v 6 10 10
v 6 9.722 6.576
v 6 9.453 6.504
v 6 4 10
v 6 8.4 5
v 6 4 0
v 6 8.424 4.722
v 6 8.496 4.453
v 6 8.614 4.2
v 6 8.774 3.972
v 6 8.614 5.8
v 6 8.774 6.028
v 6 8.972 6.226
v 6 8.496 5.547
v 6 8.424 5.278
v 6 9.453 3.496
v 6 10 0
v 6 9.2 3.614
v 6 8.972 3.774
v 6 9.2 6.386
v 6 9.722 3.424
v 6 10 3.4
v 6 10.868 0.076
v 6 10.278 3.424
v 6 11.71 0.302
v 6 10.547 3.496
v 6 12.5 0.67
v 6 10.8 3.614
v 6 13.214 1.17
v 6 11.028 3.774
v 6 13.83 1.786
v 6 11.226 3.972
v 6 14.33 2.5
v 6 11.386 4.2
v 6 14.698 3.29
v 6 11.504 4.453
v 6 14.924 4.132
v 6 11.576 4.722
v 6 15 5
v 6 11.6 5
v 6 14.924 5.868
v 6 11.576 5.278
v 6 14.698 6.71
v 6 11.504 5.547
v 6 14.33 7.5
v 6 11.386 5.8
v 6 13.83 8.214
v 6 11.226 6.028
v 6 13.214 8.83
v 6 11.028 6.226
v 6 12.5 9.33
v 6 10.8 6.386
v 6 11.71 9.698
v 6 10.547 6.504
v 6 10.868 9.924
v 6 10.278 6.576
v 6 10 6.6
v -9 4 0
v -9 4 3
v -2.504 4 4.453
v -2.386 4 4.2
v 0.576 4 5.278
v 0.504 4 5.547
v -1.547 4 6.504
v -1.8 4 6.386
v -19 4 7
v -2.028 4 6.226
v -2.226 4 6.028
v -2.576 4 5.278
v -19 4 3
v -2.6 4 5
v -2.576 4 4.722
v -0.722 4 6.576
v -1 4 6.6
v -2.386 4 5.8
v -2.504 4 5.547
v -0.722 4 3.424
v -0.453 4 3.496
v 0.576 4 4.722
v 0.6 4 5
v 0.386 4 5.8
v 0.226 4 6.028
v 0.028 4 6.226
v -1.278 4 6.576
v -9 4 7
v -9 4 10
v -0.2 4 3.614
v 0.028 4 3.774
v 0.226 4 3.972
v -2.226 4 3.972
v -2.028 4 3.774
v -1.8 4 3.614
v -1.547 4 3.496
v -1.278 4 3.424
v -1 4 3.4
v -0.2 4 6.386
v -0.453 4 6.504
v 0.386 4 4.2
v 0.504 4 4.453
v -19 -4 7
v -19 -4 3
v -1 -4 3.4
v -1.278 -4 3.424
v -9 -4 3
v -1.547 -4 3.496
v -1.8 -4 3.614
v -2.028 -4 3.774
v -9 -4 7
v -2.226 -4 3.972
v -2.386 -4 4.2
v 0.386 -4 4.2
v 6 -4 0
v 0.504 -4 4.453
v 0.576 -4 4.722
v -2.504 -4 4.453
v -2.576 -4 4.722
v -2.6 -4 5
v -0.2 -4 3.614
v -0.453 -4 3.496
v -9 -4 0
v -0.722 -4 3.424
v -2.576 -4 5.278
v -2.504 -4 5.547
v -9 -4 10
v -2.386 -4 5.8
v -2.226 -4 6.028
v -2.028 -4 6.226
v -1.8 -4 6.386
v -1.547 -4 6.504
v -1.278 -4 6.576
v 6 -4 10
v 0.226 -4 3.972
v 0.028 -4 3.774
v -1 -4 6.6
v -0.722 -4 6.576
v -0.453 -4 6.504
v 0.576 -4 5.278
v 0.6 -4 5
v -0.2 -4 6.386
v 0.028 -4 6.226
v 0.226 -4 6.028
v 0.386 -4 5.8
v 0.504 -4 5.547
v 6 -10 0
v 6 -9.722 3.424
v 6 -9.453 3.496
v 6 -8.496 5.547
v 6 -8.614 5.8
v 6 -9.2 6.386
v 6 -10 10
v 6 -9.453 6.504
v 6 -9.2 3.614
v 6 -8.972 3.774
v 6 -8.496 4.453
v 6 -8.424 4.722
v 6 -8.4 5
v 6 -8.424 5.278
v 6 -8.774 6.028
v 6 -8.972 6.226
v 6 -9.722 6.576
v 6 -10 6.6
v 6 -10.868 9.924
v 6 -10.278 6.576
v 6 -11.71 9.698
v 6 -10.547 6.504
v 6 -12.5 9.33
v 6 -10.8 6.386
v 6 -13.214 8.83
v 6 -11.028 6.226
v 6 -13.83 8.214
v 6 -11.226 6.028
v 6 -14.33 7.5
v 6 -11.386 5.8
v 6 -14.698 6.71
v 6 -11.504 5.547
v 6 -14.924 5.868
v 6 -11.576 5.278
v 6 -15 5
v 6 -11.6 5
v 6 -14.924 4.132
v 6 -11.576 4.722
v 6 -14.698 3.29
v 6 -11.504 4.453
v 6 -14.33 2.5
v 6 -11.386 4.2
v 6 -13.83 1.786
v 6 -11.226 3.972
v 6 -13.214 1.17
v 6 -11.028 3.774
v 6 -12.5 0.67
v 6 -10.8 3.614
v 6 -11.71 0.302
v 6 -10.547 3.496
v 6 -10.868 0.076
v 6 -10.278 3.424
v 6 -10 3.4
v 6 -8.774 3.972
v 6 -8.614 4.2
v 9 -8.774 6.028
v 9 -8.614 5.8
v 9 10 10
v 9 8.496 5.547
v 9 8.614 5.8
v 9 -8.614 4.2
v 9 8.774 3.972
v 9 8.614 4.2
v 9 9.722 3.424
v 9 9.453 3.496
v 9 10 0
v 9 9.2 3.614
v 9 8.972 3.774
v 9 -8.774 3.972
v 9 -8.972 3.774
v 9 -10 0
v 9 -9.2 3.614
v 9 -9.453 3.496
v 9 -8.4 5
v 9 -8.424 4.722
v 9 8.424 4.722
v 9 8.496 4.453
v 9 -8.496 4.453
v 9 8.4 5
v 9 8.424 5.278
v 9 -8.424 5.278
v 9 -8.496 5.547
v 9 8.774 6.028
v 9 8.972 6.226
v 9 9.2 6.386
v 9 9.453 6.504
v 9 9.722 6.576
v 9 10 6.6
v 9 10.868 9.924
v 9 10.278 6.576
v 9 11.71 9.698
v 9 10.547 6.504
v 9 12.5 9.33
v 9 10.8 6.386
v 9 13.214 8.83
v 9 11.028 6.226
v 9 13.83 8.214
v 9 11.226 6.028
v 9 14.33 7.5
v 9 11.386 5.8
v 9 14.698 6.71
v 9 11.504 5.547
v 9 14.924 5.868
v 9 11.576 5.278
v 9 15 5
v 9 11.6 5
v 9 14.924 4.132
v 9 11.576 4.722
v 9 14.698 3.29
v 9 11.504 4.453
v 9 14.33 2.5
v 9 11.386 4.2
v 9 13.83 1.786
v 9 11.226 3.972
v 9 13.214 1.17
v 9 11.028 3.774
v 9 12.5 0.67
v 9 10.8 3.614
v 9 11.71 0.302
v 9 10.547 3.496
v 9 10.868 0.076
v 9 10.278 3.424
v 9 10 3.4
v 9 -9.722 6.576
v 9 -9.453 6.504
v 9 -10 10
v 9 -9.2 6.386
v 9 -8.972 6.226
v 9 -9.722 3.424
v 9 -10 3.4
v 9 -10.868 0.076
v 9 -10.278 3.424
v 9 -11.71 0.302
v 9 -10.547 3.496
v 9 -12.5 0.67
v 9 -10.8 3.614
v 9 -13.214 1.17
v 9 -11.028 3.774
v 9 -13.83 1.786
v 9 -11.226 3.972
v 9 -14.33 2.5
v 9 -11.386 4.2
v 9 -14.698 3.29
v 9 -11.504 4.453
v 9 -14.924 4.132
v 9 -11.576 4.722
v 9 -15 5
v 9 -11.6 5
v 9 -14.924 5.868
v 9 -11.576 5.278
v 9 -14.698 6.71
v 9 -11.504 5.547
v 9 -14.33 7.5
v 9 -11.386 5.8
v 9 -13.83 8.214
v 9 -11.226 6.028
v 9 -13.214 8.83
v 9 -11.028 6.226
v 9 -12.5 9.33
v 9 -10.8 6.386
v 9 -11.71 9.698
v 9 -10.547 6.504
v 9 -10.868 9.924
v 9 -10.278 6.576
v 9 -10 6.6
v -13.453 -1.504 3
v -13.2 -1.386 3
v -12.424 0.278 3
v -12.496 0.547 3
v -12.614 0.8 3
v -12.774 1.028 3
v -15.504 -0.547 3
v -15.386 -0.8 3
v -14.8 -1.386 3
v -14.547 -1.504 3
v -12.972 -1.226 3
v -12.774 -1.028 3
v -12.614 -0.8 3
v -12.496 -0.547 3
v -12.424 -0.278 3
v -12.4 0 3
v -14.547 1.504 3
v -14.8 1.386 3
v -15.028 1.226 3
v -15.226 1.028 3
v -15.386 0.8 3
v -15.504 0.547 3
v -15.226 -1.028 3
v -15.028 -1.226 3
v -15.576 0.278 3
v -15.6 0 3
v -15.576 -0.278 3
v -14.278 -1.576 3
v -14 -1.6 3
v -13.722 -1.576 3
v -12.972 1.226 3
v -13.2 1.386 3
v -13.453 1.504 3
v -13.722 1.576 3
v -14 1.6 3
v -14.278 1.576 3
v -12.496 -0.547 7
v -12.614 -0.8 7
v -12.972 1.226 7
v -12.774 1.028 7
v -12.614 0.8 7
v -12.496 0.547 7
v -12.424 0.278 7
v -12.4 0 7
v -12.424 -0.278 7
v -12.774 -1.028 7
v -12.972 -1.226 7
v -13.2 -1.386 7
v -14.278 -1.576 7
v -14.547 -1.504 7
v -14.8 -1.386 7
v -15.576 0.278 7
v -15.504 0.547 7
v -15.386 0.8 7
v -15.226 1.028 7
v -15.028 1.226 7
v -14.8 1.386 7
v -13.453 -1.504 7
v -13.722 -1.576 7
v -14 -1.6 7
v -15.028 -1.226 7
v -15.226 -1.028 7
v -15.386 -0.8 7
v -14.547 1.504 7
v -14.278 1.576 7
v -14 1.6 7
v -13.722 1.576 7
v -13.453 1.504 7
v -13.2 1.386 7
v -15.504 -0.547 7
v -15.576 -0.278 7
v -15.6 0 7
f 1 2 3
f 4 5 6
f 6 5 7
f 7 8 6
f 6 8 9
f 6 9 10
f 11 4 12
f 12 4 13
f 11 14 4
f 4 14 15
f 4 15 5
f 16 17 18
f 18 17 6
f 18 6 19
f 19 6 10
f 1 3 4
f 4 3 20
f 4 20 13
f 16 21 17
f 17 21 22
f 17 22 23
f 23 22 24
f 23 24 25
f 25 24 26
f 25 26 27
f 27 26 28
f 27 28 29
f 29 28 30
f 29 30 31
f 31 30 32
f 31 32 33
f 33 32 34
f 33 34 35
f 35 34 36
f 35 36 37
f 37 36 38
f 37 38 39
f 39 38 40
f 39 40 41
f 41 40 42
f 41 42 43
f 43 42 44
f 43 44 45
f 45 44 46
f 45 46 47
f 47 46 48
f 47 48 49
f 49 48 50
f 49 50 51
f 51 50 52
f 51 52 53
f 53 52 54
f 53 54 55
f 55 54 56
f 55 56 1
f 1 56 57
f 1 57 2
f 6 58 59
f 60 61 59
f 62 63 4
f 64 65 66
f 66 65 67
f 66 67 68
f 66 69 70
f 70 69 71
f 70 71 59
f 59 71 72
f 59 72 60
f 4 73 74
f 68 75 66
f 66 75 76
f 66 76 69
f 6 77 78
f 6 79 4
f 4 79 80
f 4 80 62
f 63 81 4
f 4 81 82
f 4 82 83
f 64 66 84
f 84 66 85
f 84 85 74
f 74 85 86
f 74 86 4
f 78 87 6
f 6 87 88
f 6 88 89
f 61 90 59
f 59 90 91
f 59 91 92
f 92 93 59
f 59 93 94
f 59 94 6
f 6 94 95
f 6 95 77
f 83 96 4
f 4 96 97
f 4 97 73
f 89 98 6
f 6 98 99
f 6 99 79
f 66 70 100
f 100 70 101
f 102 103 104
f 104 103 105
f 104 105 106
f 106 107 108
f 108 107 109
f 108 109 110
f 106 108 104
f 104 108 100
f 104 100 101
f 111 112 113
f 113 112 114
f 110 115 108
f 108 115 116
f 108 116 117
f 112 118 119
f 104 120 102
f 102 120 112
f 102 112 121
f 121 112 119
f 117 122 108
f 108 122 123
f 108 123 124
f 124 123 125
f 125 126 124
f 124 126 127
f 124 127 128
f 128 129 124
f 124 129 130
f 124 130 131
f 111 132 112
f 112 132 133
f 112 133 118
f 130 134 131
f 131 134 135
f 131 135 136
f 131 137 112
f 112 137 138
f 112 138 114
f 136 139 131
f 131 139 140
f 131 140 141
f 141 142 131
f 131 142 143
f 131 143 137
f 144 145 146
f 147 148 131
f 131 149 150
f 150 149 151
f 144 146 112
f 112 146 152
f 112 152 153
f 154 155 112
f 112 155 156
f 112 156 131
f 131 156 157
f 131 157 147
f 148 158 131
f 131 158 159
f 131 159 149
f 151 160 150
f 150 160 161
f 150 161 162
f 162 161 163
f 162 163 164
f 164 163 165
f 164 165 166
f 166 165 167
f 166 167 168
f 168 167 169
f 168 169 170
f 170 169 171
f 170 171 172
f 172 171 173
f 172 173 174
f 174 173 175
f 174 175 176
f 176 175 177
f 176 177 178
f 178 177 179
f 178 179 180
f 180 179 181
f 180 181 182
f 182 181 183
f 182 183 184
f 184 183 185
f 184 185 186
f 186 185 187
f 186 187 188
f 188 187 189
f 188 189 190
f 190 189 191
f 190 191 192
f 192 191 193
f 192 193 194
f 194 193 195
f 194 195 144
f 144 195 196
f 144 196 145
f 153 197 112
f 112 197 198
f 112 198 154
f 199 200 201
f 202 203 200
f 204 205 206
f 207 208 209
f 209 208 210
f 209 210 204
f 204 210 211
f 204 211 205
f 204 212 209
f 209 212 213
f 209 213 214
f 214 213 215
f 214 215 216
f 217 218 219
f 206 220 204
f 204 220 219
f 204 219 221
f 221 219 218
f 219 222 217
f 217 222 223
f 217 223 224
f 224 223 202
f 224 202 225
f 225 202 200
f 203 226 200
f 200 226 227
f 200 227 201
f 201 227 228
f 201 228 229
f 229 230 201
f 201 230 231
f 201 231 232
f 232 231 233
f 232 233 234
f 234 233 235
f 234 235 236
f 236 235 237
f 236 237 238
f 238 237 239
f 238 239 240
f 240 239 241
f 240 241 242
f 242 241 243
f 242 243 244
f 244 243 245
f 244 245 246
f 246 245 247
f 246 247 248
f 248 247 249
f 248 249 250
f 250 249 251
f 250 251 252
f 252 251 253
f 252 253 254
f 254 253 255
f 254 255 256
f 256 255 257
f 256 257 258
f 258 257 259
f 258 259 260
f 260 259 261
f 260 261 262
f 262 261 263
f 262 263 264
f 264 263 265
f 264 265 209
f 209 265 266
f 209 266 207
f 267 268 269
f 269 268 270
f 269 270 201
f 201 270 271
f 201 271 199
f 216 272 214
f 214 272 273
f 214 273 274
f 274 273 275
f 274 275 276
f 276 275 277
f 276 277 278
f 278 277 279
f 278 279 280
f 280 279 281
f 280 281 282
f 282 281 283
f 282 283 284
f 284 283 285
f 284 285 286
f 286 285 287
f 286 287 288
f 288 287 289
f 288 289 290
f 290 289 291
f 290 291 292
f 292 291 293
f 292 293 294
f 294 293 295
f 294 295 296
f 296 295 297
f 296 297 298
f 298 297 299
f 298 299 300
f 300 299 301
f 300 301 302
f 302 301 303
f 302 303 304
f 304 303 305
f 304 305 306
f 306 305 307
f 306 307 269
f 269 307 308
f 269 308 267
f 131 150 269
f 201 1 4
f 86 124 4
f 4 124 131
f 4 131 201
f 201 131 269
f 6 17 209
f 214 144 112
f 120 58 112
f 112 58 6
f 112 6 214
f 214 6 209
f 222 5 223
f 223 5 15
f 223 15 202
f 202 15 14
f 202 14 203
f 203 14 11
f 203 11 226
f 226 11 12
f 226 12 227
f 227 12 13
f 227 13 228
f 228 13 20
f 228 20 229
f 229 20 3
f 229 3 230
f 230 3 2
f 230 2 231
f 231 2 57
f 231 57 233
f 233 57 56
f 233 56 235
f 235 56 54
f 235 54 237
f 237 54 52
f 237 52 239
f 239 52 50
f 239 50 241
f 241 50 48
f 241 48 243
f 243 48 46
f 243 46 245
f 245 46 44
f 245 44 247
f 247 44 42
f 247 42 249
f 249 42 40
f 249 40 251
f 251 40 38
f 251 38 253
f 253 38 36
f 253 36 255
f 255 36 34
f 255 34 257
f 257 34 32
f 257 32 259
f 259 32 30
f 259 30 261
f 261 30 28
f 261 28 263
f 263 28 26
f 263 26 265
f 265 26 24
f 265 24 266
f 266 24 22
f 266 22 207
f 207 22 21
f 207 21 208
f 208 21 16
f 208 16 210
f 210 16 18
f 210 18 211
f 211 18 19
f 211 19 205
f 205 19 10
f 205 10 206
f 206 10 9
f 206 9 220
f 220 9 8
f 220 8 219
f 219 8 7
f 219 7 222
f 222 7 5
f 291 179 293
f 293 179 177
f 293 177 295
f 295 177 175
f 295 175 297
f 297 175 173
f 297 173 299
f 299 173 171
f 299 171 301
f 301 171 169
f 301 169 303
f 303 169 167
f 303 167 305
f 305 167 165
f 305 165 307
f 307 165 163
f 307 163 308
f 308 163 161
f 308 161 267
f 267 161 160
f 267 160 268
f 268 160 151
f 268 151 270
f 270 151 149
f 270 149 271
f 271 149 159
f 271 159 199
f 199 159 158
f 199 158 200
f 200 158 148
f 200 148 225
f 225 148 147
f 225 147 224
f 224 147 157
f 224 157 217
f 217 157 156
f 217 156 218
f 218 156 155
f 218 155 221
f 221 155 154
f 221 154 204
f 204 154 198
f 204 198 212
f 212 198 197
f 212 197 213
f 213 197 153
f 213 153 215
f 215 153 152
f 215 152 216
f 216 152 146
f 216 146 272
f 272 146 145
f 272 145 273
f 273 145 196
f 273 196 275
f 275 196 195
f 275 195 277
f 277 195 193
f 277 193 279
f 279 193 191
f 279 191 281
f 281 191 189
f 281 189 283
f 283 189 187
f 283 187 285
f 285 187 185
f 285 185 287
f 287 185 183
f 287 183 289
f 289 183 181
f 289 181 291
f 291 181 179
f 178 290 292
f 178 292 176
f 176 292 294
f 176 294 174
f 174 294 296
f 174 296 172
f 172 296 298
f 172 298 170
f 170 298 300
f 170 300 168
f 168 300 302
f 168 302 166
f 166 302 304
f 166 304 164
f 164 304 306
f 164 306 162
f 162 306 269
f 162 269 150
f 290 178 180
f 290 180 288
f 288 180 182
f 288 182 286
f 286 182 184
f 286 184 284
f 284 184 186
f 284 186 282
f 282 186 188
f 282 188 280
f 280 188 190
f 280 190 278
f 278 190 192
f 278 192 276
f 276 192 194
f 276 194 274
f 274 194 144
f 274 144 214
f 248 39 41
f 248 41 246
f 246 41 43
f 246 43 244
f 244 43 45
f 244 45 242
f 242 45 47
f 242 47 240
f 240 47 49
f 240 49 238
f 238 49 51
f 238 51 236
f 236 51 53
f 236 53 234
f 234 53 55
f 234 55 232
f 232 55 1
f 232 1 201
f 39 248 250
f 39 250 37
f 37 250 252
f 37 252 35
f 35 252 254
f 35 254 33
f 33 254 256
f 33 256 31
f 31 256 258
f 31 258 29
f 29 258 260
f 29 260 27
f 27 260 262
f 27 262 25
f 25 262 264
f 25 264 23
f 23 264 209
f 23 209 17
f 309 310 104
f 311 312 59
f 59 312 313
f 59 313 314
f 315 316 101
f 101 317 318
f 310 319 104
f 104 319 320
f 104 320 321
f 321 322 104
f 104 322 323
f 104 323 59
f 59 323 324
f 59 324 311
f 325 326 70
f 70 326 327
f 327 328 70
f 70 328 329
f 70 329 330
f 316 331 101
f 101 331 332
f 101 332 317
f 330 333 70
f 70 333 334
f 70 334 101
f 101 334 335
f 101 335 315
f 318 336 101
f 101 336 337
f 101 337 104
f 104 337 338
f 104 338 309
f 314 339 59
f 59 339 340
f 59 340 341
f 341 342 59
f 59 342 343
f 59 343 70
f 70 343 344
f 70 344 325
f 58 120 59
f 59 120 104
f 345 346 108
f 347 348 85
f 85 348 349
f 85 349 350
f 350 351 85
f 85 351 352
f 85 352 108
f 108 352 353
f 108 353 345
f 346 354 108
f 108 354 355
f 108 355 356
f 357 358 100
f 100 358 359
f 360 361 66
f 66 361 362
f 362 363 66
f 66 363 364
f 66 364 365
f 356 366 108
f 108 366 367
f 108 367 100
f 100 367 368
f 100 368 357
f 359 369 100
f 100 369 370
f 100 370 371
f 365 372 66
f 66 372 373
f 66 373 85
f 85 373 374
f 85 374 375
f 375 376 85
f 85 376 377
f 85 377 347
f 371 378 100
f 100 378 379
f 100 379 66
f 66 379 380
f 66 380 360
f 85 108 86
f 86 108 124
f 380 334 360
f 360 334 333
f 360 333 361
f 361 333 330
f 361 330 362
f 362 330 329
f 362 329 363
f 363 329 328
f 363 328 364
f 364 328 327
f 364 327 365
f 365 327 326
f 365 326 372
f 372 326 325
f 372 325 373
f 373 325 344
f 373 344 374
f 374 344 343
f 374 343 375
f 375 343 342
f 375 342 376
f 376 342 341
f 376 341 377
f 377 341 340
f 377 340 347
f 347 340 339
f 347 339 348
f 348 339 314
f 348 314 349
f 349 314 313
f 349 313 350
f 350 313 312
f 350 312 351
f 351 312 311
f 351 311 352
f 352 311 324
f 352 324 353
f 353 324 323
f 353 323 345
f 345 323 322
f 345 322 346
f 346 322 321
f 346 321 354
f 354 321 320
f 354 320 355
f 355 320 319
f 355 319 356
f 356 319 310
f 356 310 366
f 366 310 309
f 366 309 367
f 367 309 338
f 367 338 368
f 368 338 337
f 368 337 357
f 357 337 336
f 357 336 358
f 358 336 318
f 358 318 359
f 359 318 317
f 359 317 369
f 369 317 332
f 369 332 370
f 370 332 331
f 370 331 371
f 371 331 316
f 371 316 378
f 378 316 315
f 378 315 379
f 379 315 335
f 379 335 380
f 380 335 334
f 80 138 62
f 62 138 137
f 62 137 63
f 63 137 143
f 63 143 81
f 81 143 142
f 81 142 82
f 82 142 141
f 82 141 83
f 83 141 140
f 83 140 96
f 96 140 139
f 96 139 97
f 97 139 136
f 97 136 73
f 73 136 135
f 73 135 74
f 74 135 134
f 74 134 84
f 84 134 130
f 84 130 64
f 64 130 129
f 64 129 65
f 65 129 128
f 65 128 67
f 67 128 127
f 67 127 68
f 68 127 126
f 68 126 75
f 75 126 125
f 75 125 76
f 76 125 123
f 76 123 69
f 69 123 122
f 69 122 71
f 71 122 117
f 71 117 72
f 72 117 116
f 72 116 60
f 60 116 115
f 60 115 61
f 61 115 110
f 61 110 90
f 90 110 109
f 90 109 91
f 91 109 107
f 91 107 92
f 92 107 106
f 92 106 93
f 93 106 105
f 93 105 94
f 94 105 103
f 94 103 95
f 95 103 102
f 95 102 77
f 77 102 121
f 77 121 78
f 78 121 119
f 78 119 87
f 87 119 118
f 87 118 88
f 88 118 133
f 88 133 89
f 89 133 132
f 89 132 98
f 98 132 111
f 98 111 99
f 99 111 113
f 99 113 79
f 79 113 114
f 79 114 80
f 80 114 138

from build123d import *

# Parameters (mm, degrees)
BOSS_EXTRU_1_DEPTH      = 10
ESQUISSE2_R             = 1.6
ENL_V_MAT_EXTRU_1_DEPTH = 10
CONG_1_R                = 5
ESQUISSE3_W             = 10
ESQUISSE3_H             = 3
ENL_V_MAT_EXTRU_2_DEPTH = 10
ESQUISSE4_R             = 1.6
ENL_V_MAT_EXTRU_3_DEPTH = 10
ESQUISSE5_R             = 1.6
ENL_V_MAT_EXTRU_4_DEPTH = 10


with BuildPart() as part:
    # Esquisse1 → Boss.-Extru.1 (new body)
    with BuildSketch(Plane.XY):
        Polygon((6, -4), (6, -15), (9, -15), (9, 15), (6, 15), (6, 4), (-19, 4), (-19, -4), align=None)
    extrude(amount=BOSS_EXTRU_1_DEPTH)

    # Esquisse2 → Enlèv. mat.-Extru.1 (cut)
    with BuildSketch(Plane.ZY.offset(-6)):
        with Locations(Location((5, 10, 0), (0, 0, 270))):
            Circle(ESQUISSE2_R)
    enl_v_mat_extru_1 = extrude(amount=-ENL_V_MAT_EXTRU_1_DEPTH, mode=Mode.SUBTRACT)

    # Symétrie3: Enlèv. mat.-Extru.1 across plane
    add(enl_v_mat_extru_1.mirror(Plane.ZX), mode=Mode.SUBTRACT)

    # Congé1
    cong_1_edges = [part.edges().sort_by_distance(p)[0] for p in [
        (7.5, 15, 0),
        (7.5, 15, 10),
        (7.5, -15, 0),
        (7.5, -15, 10),
    ]]
    fillet(cong_1_edges, radius=CONG_1_R - 0.0001)  # a hair under: the kernel refuses the full size

    # Esquisse3 → Enlèv. mat.-Extru.2 (cut)
    with BuildSketch(Plane(origin=(0, 4, 0), x_dir=(1, 0, 0), z_dir=(0, 1, 0))):
        with Locations((-14, -1.5)):
            Rectangle(ESQUISSE3_W, ESQUISSE3_H)
        with Locations((-14, -8.5)):
            Rectangle(ESQUISSE3_W, ESQUISSE3_H)
    extrude(amount=-ENL_V_MAT_EXTRU_2_DEPTH, mode=Mode.SUBTRACT)

    # Esquisse4 → Enlèv. mat.-Extru.3 (cut)
    with BuildSketch(Plane(origin=(0, 0, 3), x_dir=(-1, 0, 0), z_dir=(0, 0, -1))):
        with Locations((14, 0)):
            Circle(ESQUISSE4_R)
    extrude(amount=-ENL_V_MAT_EXTRU_3_DEPTH, mode=Mode.SUBTRACT)

    # Esquisse5 → Enlèv. mat.-Extru.4 (cut)
    with BuildSketch(Plane.XZ.offset(4)):
        with Locations((-1, 5)):
            Circle(ESQUISSE5_R)
    extrude(amount=-ENL_V_MAT_EXTRU_4_DEPTH, mode=Mode.SUBTRACT)


solid = part.part
